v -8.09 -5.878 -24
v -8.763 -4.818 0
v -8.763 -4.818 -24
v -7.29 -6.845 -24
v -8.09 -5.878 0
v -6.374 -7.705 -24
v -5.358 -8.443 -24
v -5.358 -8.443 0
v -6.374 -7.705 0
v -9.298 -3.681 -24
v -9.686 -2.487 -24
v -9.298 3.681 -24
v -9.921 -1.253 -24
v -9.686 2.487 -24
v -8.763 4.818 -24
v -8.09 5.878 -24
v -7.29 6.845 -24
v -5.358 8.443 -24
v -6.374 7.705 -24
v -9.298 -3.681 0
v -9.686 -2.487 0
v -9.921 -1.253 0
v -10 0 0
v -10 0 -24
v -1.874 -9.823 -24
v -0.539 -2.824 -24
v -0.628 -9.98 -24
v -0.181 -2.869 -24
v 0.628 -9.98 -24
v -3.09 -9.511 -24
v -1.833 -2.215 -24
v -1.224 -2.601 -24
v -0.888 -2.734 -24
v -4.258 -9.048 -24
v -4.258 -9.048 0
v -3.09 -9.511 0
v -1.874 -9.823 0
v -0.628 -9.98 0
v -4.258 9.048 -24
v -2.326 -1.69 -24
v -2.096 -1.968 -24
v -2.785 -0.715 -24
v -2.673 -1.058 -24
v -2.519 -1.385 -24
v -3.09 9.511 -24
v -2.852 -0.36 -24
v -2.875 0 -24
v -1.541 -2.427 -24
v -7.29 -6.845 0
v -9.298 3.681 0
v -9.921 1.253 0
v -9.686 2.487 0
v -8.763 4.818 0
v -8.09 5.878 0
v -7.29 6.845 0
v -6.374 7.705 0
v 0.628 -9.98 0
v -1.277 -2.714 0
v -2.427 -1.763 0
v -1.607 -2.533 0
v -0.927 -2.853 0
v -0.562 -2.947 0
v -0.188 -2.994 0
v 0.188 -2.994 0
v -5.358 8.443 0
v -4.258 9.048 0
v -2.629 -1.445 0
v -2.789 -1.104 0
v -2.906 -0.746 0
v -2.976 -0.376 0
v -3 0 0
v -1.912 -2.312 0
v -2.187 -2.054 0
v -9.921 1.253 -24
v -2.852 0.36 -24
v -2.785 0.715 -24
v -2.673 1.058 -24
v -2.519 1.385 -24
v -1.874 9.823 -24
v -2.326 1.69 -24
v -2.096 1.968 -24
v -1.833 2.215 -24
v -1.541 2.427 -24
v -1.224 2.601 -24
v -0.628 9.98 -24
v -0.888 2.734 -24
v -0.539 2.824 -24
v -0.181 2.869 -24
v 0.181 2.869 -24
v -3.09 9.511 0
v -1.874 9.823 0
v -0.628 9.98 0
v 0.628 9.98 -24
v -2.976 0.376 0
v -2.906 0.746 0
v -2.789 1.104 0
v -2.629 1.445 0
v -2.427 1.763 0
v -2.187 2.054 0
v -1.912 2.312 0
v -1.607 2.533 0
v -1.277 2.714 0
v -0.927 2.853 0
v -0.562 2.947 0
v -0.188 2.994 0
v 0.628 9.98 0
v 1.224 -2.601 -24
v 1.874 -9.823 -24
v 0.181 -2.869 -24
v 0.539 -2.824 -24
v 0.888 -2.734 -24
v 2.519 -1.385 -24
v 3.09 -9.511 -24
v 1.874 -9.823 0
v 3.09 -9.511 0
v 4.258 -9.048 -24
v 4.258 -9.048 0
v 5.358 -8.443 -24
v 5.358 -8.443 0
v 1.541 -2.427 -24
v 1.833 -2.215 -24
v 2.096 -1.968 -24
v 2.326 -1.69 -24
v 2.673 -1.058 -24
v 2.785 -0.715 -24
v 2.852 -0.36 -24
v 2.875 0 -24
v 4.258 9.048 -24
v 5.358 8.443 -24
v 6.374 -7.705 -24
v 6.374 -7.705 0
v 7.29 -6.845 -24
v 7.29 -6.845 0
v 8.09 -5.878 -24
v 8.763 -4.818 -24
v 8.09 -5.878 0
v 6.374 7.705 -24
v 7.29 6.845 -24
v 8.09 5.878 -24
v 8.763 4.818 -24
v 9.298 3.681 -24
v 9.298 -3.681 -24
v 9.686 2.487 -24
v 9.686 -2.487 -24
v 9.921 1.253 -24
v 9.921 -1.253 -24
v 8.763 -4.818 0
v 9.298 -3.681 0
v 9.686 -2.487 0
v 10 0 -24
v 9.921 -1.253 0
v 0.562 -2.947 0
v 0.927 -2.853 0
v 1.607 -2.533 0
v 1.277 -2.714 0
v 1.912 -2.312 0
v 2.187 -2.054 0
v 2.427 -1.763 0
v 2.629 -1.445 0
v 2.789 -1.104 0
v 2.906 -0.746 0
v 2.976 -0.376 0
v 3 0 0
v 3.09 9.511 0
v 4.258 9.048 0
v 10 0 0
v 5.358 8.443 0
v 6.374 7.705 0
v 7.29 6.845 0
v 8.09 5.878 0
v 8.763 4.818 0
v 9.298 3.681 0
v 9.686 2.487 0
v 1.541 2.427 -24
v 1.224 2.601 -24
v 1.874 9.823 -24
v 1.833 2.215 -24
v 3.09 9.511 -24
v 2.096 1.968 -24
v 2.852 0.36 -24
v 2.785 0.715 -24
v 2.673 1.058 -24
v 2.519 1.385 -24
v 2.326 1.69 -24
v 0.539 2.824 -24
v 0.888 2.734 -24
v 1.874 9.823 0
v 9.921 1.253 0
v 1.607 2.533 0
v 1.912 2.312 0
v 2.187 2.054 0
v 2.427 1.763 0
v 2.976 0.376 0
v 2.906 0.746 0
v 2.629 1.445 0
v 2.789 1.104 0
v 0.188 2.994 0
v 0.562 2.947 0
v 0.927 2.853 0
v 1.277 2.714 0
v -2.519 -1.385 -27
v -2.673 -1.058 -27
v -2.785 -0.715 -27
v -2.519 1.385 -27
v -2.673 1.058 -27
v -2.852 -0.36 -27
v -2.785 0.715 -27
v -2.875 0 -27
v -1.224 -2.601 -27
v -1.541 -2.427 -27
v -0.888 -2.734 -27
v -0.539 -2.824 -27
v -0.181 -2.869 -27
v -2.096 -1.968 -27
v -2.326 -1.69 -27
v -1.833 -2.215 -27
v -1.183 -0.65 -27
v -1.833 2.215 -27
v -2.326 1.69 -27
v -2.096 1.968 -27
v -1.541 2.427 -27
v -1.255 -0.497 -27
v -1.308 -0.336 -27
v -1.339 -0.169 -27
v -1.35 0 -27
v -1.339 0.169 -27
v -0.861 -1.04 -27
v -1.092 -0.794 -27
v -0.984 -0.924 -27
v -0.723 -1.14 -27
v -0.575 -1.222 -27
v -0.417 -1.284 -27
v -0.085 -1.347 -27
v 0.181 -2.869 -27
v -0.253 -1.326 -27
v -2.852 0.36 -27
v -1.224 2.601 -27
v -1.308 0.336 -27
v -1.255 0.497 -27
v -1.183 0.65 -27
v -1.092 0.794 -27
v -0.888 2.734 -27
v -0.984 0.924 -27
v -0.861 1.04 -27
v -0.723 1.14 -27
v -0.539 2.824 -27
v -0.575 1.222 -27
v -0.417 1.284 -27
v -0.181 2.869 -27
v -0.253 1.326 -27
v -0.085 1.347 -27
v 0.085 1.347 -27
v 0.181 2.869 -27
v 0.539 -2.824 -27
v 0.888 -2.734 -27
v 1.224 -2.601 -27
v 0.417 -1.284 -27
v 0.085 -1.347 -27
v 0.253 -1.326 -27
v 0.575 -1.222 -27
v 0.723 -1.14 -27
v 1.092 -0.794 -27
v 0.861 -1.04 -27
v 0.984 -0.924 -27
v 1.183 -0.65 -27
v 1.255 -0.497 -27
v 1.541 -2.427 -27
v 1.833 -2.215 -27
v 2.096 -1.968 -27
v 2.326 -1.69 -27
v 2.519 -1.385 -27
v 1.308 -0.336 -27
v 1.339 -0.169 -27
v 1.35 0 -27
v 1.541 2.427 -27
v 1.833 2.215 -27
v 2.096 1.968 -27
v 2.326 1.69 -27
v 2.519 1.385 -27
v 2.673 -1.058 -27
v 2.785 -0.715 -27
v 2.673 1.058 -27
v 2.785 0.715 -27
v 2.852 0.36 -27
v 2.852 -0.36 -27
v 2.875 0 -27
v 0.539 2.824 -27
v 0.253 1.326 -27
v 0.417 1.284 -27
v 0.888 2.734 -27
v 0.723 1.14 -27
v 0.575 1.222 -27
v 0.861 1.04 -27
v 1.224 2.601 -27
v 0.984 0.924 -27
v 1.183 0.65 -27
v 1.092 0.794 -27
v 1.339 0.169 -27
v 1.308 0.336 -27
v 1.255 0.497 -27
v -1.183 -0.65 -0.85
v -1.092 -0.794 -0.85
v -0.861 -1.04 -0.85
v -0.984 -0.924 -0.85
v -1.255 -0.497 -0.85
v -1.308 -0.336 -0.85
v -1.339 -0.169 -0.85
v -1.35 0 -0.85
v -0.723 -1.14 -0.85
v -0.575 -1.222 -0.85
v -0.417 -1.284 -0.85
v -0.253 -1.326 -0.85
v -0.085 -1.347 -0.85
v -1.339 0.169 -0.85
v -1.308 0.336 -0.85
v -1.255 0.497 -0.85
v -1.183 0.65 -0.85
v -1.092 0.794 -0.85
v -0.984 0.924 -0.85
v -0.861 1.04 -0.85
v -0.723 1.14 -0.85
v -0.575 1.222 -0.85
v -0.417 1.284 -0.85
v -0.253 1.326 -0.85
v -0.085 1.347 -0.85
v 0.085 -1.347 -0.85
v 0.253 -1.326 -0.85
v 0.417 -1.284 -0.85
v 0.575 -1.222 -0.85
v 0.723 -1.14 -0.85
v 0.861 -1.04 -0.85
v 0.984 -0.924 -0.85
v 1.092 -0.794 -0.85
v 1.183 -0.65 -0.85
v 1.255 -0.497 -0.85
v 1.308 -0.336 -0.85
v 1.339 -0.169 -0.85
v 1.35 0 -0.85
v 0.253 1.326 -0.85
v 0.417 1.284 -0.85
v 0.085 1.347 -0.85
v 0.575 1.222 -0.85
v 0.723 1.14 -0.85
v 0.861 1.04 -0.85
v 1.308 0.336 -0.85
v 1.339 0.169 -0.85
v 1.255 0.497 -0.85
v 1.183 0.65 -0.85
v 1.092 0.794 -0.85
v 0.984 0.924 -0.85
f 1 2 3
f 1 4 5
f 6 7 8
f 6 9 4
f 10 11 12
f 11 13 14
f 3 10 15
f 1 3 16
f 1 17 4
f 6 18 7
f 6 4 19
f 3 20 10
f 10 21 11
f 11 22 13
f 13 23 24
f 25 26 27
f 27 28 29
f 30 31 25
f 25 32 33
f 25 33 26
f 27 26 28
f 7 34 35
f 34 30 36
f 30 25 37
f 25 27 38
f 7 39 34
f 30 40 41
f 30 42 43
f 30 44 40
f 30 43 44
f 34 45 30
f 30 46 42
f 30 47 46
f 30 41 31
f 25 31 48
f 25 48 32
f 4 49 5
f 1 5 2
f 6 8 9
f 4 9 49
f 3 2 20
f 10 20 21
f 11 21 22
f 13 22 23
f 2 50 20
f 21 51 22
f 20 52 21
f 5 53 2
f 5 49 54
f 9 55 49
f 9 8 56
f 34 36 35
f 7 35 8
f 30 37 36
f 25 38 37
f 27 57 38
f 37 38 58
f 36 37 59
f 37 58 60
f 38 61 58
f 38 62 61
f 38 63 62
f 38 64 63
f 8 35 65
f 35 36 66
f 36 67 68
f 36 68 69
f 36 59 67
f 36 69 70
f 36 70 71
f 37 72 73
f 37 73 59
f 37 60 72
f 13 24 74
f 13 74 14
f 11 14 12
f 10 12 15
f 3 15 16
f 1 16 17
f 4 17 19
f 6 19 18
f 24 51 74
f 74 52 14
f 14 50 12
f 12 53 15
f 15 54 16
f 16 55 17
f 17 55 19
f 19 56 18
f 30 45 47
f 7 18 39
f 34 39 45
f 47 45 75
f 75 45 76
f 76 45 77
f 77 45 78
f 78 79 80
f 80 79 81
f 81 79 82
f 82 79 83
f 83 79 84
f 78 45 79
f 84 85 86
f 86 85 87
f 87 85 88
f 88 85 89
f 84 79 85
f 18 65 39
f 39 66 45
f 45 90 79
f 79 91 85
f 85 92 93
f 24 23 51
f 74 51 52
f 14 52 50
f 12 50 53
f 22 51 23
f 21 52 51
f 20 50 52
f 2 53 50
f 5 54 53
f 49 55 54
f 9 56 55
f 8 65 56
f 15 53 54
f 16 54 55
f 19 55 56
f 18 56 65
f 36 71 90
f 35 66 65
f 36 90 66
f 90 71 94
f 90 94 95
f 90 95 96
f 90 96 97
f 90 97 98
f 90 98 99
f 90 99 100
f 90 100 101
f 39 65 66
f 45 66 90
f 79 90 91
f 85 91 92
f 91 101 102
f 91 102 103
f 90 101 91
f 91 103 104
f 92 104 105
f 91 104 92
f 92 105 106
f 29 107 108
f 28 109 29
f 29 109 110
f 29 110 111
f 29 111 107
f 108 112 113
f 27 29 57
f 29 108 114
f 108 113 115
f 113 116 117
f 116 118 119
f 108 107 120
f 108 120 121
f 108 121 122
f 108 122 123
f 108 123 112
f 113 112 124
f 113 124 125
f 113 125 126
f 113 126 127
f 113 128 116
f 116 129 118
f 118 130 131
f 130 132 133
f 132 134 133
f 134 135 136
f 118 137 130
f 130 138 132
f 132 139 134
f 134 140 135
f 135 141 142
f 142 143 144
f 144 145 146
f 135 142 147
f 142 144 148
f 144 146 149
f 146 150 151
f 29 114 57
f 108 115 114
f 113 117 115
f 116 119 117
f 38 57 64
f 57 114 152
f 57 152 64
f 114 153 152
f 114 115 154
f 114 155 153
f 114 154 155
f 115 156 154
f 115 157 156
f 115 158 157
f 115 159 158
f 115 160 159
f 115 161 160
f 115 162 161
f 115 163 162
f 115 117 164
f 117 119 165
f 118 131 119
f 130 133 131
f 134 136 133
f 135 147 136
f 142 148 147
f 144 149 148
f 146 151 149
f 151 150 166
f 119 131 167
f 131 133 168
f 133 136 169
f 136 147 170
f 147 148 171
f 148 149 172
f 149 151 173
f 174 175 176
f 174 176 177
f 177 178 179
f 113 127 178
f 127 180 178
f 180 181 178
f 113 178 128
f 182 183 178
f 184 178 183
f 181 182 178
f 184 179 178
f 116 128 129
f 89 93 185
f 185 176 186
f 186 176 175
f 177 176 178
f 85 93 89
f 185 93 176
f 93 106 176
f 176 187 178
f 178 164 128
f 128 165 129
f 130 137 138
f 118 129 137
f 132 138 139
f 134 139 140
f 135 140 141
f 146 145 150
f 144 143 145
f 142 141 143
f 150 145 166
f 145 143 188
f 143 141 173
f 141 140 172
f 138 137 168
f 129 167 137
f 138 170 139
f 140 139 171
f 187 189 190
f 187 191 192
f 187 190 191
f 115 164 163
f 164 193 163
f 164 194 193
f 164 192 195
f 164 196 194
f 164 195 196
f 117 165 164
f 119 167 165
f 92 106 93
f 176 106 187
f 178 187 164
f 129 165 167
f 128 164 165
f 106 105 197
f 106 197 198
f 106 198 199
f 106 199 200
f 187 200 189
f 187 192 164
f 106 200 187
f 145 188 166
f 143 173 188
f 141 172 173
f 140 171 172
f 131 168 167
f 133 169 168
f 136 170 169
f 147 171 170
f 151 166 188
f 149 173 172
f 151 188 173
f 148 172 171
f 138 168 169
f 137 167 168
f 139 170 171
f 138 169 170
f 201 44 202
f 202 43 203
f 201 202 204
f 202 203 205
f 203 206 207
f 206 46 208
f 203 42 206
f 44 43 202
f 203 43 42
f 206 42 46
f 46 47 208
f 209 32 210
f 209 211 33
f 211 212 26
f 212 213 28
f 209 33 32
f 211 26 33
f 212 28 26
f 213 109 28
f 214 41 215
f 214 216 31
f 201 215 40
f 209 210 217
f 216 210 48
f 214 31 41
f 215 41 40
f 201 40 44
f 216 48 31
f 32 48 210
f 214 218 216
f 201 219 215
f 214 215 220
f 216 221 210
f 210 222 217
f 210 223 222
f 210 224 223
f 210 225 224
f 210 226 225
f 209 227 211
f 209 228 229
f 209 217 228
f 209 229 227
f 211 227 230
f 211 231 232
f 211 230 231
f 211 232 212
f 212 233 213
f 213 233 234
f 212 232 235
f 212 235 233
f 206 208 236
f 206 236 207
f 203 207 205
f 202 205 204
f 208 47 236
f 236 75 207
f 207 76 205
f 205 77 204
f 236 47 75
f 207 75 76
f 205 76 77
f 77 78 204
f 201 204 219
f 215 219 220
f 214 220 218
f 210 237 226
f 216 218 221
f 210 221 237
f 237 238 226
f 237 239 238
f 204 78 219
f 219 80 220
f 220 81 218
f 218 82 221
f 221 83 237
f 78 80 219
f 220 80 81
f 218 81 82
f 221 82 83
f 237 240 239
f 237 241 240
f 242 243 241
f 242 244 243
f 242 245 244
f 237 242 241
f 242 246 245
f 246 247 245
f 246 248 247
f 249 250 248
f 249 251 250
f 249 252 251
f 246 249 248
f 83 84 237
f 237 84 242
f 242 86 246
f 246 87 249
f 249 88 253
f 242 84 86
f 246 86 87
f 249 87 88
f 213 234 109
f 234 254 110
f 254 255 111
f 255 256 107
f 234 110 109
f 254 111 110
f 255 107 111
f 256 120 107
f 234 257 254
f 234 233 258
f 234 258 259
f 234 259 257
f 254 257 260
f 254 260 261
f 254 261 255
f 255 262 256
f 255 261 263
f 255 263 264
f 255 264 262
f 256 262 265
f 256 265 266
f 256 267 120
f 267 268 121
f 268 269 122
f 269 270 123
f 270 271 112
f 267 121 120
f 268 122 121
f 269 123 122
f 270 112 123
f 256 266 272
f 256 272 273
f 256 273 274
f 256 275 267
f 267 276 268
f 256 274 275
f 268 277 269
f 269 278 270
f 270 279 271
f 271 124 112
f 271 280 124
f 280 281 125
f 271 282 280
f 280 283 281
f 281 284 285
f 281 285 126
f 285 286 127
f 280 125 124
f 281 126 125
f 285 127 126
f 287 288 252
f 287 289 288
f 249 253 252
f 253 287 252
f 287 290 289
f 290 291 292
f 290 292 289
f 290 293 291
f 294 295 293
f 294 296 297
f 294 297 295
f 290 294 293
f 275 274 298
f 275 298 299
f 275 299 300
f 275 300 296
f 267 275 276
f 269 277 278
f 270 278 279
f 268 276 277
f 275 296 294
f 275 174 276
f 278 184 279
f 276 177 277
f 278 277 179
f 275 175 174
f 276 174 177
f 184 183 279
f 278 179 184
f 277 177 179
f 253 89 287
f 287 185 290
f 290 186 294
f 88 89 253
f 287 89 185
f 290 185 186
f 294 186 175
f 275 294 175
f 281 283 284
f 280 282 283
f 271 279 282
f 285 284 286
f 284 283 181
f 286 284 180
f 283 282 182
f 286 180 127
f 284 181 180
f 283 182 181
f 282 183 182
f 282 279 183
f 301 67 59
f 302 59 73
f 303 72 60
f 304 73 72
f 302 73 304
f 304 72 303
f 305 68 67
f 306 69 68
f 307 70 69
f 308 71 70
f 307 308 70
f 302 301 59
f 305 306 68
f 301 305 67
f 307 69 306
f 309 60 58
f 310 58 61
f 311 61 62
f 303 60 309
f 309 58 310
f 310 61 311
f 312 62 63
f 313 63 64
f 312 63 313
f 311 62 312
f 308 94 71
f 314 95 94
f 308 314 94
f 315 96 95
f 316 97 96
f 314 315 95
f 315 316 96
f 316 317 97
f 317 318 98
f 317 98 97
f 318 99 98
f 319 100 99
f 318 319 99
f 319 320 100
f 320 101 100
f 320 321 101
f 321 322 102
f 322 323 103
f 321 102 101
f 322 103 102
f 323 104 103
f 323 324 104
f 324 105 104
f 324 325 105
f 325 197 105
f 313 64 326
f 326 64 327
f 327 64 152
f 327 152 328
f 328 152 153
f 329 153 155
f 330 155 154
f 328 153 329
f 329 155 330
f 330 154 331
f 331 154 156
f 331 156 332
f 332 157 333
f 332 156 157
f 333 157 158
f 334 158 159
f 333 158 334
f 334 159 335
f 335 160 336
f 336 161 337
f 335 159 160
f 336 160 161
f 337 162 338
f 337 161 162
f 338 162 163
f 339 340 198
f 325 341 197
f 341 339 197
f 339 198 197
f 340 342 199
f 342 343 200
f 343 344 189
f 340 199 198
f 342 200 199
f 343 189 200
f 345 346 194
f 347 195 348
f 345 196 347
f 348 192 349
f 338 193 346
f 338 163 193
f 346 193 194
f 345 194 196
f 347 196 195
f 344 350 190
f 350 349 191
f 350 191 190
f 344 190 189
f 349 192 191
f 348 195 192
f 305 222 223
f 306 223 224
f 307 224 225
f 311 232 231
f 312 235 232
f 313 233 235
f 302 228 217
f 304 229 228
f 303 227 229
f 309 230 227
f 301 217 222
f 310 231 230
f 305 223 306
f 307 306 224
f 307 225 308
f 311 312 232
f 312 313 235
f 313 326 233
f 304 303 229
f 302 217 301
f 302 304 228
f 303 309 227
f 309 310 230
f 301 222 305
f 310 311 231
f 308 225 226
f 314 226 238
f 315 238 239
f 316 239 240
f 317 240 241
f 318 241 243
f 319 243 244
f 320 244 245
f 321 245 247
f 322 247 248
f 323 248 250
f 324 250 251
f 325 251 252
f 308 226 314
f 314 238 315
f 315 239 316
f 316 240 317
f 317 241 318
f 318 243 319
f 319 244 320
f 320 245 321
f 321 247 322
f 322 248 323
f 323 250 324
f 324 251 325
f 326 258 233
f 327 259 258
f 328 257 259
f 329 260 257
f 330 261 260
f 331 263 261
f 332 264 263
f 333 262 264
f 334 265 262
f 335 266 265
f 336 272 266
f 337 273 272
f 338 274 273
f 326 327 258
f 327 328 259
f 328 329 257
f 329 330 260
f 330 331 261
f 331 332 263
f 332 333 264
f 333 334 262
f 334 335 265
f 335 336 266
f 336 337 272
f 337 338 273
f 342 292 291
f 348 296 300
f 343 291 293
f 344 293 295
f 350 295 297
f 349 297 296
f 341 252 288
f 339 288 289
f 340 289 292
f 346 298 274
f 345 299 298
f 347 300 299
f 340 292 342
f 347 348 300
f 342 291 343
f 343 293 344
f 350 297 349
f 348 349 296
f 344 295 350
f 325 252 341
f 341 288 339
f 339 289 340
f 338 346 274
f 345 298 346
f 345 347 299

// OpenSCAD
$fn = 50;


difference() {
	union() {
		translate(v = [0, 0, -24.0000000000]) {
			cylinder(h = 24, r = 10.0000000000);
		}
		#translate(v = [0, 0, -27.0000000000]) {
			cylinder(h = 27, r = 2.8750000000);
		}
	}
	union() {
		translate(v = [0, 0, 0]) {
			rotate(a = [0, 0, 0]) {
				difference() {
					union() {
						translate(v = [0, 0, -27.0000000000]) {
							cylinder(h = 27, r = 1.0000000000);
						}
						translate(v = [0, 0, -0.8500000000]) {
							cylinder(h = 0.8500000000, r1 = 1.3500000000, r2 = 3.0000000000);
						}
						translate(v = [0, 0, -27.0000000000]) {
							cylinder(h = 27, r = 1.3500000000);
						}
						translate(v = [0, 0, -27.0000000000]) {
							cylinder(h = 27, r = 1.0000000000);
						}
					}
					union();
				}
			}
		}
	}
}
